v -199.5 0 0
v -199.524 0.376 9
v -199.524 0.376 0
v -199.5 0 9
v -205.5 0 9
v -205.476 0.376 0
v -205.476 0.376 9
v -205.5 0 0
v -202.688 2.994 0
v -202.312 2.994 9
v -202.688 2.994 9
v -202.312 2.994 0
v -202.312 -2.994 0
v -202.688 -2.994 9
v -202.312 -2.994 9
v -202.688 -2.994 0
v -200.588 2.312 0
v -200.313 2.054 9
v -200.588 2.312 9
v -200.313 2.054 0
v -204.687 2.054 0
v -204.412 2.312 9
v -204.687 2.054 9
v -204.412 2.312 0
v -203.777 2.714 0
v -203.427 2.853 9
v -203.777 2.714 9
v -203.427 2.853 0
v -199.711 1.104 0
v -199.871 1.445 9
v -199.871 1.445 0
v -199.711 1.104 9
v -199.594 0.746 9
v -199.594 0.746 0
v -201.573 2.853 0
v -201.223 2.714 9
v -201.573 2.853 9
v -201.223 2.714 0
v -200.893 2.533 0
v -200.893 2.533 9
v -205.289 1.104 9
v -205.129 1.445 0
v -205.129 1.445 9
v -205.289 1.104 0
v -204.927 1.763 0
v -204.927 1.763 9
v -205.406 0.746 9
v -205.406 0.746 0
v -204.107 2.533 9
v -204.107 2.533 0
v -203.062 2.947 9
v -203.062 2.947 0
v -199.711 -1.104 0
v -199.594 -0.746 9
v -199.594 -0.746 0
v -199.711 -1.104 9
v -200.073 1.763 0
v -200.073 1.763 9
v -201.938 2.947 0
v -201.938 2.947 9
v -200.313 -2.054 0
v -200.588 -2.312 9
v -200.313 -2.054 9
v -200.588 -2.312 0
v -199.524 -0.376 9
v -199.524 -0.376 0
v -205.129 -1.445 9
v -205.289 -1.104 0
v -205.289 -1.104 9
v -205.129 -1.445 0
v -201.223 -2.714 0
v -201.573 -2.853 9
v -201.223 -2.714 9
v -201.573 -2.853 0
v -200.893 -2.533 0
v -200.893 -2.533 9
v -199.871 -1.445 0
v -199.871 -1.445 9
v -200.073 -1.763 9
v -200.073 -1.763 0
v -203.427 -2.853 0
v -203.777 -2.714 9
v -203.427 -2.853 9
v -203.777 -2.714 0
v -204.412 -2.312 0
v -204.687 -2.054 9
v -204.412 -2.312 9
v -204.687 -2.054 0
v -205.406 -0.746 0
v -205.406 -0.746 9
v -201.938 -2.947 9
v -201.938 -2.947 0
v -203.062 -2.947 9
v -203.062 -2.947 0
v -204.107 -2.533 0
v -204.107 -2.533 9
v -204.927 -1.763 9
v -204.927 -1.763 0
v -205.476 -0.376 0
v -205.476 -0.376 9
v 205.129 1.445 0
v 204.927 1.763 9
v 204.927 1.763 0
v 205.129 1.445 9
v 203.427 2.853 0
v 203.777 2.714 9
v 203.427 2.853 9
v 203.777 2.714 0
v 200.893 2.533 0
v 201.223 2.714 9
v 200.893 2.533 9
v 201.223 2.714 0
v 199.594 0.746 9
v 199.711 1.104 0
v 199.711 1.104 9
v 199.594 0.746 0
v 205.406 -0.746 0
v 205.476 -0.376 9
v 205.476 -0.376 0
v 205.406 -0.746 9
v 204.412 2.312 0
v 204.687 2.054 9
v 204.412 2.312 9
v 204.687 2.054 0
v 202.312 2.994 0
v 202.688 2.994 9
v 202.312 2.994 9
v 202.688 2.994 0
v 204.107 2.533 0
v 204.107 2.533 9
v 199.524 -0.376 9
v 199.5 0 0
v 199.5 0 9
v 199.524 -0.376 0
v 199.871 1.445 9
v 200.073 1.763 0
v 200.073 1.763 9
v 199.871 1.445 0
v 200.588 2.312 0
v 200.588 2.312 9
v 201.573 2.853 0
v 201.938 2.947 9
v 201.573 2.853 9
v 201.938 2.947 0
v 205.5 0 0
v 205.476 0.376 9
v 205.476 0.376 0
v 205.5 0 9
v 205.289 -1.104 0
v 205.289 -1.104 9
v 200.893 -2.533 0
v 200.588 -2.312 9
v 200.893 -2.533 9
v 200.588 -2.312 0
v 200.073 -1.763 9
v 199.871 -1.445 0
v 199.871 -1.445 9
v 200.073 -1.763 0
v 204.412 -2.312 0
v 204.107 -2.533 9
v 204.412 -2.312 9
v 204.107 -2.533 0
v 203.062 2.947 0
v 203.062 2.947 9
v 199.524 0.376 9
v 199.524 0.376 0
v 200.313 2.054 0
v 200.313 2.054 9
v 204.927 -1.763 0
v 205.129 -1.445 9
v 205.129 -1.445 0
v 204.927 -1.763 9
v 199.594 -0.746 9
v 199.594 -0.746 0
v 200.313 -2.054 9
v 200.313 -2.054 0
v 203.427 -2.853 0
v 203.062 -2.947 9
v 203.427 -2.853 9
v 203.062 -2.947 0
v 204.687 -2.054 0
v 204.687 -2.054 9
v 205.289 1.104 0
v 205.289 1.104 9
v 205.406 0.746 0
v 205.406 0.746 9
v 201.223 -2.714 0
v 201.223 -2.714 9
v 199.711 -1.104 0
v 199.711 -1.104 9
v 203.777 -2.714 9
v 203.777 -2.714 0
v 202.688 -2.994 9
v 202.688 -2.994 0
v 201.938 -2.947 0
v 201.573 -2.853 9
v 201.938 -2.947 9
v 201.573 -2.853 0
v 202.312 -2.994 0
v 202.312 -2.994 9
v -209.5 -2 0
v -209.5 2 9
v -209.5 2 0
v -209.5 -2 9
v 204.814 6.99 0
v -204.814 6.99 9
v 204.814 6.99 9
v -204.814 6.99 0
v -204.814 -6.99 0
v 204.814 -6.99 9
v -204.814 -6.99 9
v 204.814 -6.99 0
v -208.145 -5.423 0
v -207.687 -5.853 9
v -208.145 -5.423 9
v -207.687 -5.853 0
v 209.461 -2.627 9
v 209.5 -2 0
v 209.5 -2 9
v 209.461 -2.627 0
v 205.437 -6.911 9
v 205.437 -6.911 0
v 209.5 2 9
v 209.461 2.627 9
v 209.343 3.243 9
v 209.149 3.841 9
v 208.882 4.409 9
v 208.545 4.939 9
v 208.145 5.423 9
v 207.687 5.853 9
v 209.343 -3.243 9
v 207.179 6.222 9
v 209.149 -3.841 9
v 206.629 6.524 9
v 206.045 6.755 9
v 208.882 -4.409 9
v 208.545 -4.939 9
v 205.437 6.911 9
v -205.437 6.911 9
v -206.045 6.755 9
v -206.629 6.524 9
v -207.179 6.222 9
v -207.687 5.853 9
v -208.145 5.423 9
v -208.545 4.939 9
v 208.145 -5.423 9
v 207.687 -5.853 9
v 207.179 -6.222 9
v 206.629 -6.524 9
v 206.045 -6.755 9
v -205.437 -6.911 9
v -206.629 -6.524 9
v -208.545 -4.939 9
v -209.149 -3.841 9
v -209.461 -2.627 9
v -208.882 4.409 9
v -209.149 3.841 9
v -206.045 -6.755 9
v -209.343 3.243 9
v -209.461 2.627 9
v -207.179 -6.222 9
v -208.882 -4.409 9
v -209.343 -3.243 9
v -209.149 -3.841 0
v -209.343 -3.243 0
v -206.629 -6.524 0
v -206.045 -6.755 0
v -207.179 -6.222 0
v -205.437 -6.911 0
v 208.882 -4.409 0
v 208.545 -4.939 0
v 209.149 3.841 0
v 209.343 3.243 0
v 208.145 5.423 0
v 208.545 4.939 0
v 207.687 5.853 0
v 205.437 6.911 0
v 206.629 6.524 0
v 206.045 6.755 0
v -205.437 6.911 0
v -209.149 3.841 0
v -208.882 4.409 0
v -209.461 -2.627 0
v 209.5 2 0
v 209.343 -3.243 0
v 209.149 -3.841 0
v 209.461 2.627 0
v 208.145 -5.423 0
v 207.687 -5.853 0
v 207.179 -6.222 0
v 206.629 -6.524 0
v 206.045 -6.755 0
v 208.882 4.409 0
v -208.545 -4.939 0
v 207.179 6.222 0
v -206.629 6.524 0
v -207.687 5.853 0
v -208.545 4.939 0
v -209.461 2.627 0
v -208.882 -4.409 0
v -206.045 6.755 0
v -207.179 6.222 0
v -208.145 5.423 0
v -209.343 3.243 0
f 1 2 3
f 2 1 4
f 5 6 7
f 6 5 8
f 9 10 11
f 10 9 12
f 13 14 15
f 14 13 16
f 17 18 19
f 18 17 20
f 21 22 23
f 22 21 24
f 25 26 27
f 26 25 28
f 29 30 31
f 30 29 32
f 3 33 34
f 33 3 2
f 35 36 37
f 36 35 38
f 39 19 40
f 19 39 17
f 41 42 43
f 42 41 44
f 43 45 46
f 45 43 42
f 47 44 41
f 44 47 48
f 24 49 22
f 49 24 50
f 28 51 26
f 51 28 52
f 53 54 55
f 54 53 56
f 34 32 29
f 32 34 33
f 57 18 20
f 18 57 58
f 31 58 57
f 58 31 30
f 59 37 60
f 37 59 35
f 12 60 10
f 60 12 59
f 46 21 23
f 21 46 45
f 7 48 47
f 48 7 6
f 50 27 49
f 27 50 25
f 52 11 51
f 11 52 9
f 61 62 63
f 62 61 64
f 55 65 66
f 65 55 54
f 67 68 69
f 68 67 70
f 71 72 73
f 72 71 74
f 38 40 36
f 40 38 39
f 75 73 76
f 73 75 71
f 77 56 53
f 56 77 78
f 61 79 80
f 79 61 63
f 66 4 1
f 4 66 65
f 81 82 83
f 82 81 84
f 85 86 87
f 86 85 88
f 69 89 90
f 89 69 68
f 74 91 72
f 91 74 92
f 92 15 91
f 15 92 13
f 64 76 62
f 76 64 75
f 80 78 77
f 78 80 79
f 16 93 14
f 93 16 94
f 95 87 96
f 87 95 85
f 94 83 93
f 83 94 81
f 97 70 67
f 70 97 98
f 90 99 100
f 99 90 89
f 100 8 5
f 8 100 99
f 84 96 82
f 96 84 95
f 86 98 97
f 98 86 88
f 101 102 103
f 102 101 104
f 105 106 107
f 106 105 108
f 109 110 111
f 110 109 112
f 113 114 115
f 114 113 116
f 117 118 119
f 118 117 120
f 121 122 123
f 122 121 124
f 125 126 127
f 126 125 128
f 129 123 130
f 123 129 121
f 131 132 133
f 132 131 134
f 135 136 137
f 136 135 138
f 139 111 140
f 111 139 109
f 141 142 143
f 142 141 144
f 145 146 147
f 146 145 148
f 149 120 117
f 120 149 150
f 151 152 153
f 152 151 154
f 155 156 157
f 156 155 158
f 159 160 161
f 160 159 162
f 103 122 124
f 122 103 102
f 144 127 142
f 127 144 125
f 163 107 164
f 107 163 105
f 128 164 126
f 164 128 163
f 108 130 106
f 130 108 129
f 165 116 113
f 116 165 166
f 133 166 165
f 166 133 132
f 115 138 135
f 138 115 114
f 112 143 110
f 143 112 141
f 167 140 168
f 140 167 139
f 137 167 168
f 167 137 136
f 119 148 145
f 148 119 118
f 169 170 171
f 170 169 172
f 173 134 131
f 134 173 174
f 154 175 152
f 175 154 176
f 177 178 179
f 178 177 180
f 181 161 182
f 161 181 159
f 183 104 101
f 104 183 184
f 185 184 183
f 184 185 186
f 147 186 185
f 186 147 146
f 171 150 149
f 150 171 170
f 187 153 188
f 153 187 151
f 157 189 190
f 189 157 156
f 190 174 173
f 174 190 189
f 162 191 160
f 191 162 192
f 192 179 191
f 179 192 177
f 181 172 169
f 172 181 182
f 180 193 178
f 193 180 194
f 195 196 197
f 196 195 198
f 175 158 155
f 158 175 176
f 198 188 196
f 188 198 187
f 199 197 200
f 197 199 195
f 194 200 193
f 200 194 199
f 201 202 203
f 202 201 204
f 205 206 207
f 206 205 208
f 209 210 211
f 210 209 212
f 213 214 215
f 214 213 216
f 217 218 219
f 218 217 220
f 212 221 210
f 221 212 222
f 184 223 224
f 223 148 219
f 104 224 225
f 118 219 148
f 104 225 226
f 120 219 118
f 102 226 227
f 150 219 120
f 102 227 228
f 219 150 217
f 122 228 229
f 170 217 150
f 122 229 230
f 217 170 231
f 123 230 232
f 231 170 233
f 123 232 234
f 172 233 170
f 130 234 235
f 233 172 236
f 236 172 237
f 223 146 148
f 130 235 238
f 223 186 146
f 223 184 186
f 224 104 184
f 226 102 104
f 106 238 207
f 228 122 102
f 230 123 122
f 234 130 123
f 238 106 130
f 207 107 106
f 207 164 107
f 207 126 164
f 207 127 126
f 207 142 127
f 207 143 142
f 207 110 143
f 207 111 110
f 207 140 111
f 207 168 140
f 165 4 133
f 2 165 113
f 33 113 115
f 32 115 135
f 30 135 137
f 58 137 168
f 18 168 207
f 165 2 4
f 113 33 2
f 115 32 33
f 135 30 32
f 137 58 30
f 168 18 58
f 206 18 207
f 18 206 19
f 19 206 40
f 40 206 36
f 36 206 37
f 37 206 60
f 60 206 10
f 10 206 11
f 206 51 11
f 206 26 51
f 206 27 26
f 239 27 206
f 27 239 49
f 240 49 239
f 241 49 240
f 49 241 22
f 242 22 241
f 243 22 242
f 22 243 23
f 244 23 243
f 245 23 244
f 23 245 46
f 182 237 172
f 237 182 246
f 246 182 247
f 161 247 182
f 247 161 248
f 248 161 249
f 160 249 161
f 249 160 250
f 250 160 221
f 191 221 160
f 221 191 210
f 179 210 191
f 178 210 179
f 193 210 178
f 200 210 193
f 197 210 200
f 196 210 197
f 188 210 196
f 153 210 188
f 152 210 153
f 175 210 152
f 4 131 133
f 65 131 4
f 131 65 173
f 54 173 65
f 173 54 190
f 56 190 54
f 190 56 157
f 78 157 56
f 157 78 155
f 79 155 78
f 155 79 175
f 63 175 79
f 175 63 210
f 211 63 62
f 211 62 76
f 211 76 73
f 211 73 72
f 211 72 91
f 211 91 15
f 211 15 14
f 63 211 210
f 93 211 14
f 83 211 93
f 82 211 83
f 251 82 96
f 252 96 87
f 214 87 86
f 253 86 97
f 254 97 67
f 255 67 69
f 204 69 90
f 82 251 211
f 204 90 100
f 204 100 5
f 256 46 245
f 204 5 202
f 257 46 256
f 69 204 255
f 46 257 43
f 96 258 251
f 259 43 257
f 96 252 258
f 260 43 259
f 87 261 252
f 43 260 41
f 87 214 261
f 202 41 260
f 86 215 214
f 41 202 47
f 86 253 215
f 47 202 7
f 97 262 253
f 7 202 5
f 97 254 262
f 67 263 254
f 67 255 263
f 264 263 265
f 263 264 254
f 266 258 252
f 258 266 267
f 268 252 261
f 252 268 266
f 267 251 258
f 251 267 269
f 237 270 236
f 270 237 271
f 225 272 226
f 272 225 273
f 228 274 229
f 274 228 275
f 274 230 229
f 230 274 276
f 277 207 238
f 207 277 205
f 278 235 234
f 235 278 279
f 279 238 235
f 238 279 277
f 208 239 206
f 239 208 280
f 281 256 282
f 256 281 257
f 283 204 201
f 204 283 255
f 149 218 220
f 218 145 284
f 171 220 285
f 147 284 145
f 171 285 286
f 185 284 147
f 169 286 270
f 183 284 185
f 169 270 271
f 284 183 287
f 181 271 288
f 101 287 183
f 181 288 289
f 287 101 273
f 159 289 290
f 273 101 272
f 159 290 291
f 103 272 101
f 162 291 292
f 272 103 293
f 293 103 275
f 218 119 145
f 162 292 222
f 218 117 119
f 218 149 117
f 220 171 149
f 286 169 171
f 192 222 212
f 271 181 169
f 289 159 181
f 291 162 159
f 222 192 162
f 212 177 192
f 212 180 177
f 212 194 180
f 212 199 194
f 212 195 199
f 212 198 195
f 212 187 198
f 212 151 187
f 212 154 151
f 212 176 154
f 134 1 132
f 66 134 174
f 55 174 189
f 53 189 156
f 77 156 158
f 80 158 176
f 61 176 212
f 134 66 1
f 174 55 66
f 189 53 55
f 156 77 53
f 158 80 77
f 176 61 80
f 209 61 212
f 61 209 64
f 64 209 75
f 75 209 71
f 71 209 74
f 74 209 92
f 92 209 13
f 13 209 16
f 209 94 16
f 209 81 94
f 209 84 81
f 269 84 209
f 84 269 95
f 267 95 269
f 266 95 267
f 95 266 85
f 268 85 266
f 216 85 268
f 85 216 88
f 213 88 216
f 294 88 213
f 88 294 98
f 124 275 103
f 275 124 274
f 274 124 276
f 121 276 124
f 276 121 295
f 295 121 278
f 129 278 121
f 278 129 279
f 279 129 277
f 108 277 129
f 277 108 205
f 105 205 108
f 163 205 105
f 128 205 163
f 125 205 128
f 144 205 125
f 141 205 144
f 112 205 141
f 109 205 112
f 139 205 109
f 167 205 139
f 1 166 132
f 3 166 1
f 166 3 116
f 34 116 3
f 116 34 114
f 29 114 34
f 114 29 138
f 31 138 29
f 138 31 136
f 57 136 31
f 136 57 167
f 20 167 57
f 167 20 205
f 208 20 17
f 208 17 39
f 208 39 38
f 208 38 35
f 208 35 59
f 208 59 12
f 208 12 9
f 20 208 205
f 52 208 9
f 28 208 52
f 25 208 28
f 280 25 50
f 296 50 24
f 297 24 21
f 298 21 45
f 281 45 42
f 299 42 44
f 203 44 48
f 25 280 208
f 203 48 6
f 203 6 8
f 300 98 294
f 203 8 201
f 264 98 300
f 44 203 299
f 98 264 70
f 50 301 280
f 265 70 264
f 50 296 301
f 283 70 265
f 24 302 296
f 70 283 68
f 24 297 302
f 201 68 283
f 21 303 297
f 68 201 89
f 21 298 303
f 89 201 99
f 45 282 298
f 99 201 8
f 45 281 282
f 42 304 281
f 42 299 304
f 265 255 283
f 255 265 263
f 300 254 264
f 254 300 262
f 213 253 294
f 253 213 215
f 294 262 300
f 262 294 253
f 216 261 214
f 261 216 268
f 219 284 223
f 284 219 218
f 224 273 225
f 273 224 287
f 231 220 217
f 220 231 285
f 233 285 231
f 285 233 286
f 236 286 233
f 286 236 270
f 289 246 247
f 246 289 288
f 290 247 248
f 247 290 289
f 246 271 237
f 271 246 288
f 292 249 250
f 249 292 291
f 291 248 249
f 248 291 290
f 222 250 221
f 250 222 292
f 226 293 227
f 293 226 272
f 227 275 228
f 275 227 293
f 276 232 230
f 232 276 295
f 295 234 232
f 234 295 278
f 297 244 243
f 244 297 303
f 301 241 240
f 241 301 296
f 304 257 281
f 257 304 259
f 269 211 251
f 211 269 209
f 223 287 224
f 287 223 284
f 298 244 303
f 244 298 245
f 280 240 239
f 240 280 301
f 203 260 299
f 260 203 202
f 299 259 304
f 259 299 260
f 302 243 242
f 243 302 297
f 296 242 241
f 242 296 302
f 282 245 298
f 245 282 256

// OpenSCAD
$fn = 50;


difference() {
	union() {
		hull() {
			translate(v = [-204.5000000000, 2.0000000000, 0]) {
				cylinder(h = 9, r = 5);
			}
			translate(v = [204.5000000000, 2.0000000000, 0]) {
				cylinder(h = 9, r = 5);
			}
			translate(v = [-204.5000000000, -2.0000000000, 0]) {
				cylinder(h = 9, r = 5);
			}
			translate(v = [204.5000000000, -2.0000000000, 0]) {
				cylinder(h = 9, r = 5);
			}
		}
	}
	union() {
		translate(v = [-202.5000000000, 0.0000000000, -100.0000000000]) {
			cylinder(h = 200, r = 3.0000000000);
		}
		translate(v = [-202.5000000000, 0.0000000000, -100.0000000000]) {
			cylinder(h = 200, r = 3.0000000000);
		}
		translate(v = [202.5000000000, 0.0000000000, -100.0000000000]) {
			cylinder(h = 200, r = 3.0000000000);
		}
		translate(v = [202.5000000000, 0.0000000000, -100.0000000000]) {
			cylinder(h = 200, r = 3.0000000000);
		}
	}
}
